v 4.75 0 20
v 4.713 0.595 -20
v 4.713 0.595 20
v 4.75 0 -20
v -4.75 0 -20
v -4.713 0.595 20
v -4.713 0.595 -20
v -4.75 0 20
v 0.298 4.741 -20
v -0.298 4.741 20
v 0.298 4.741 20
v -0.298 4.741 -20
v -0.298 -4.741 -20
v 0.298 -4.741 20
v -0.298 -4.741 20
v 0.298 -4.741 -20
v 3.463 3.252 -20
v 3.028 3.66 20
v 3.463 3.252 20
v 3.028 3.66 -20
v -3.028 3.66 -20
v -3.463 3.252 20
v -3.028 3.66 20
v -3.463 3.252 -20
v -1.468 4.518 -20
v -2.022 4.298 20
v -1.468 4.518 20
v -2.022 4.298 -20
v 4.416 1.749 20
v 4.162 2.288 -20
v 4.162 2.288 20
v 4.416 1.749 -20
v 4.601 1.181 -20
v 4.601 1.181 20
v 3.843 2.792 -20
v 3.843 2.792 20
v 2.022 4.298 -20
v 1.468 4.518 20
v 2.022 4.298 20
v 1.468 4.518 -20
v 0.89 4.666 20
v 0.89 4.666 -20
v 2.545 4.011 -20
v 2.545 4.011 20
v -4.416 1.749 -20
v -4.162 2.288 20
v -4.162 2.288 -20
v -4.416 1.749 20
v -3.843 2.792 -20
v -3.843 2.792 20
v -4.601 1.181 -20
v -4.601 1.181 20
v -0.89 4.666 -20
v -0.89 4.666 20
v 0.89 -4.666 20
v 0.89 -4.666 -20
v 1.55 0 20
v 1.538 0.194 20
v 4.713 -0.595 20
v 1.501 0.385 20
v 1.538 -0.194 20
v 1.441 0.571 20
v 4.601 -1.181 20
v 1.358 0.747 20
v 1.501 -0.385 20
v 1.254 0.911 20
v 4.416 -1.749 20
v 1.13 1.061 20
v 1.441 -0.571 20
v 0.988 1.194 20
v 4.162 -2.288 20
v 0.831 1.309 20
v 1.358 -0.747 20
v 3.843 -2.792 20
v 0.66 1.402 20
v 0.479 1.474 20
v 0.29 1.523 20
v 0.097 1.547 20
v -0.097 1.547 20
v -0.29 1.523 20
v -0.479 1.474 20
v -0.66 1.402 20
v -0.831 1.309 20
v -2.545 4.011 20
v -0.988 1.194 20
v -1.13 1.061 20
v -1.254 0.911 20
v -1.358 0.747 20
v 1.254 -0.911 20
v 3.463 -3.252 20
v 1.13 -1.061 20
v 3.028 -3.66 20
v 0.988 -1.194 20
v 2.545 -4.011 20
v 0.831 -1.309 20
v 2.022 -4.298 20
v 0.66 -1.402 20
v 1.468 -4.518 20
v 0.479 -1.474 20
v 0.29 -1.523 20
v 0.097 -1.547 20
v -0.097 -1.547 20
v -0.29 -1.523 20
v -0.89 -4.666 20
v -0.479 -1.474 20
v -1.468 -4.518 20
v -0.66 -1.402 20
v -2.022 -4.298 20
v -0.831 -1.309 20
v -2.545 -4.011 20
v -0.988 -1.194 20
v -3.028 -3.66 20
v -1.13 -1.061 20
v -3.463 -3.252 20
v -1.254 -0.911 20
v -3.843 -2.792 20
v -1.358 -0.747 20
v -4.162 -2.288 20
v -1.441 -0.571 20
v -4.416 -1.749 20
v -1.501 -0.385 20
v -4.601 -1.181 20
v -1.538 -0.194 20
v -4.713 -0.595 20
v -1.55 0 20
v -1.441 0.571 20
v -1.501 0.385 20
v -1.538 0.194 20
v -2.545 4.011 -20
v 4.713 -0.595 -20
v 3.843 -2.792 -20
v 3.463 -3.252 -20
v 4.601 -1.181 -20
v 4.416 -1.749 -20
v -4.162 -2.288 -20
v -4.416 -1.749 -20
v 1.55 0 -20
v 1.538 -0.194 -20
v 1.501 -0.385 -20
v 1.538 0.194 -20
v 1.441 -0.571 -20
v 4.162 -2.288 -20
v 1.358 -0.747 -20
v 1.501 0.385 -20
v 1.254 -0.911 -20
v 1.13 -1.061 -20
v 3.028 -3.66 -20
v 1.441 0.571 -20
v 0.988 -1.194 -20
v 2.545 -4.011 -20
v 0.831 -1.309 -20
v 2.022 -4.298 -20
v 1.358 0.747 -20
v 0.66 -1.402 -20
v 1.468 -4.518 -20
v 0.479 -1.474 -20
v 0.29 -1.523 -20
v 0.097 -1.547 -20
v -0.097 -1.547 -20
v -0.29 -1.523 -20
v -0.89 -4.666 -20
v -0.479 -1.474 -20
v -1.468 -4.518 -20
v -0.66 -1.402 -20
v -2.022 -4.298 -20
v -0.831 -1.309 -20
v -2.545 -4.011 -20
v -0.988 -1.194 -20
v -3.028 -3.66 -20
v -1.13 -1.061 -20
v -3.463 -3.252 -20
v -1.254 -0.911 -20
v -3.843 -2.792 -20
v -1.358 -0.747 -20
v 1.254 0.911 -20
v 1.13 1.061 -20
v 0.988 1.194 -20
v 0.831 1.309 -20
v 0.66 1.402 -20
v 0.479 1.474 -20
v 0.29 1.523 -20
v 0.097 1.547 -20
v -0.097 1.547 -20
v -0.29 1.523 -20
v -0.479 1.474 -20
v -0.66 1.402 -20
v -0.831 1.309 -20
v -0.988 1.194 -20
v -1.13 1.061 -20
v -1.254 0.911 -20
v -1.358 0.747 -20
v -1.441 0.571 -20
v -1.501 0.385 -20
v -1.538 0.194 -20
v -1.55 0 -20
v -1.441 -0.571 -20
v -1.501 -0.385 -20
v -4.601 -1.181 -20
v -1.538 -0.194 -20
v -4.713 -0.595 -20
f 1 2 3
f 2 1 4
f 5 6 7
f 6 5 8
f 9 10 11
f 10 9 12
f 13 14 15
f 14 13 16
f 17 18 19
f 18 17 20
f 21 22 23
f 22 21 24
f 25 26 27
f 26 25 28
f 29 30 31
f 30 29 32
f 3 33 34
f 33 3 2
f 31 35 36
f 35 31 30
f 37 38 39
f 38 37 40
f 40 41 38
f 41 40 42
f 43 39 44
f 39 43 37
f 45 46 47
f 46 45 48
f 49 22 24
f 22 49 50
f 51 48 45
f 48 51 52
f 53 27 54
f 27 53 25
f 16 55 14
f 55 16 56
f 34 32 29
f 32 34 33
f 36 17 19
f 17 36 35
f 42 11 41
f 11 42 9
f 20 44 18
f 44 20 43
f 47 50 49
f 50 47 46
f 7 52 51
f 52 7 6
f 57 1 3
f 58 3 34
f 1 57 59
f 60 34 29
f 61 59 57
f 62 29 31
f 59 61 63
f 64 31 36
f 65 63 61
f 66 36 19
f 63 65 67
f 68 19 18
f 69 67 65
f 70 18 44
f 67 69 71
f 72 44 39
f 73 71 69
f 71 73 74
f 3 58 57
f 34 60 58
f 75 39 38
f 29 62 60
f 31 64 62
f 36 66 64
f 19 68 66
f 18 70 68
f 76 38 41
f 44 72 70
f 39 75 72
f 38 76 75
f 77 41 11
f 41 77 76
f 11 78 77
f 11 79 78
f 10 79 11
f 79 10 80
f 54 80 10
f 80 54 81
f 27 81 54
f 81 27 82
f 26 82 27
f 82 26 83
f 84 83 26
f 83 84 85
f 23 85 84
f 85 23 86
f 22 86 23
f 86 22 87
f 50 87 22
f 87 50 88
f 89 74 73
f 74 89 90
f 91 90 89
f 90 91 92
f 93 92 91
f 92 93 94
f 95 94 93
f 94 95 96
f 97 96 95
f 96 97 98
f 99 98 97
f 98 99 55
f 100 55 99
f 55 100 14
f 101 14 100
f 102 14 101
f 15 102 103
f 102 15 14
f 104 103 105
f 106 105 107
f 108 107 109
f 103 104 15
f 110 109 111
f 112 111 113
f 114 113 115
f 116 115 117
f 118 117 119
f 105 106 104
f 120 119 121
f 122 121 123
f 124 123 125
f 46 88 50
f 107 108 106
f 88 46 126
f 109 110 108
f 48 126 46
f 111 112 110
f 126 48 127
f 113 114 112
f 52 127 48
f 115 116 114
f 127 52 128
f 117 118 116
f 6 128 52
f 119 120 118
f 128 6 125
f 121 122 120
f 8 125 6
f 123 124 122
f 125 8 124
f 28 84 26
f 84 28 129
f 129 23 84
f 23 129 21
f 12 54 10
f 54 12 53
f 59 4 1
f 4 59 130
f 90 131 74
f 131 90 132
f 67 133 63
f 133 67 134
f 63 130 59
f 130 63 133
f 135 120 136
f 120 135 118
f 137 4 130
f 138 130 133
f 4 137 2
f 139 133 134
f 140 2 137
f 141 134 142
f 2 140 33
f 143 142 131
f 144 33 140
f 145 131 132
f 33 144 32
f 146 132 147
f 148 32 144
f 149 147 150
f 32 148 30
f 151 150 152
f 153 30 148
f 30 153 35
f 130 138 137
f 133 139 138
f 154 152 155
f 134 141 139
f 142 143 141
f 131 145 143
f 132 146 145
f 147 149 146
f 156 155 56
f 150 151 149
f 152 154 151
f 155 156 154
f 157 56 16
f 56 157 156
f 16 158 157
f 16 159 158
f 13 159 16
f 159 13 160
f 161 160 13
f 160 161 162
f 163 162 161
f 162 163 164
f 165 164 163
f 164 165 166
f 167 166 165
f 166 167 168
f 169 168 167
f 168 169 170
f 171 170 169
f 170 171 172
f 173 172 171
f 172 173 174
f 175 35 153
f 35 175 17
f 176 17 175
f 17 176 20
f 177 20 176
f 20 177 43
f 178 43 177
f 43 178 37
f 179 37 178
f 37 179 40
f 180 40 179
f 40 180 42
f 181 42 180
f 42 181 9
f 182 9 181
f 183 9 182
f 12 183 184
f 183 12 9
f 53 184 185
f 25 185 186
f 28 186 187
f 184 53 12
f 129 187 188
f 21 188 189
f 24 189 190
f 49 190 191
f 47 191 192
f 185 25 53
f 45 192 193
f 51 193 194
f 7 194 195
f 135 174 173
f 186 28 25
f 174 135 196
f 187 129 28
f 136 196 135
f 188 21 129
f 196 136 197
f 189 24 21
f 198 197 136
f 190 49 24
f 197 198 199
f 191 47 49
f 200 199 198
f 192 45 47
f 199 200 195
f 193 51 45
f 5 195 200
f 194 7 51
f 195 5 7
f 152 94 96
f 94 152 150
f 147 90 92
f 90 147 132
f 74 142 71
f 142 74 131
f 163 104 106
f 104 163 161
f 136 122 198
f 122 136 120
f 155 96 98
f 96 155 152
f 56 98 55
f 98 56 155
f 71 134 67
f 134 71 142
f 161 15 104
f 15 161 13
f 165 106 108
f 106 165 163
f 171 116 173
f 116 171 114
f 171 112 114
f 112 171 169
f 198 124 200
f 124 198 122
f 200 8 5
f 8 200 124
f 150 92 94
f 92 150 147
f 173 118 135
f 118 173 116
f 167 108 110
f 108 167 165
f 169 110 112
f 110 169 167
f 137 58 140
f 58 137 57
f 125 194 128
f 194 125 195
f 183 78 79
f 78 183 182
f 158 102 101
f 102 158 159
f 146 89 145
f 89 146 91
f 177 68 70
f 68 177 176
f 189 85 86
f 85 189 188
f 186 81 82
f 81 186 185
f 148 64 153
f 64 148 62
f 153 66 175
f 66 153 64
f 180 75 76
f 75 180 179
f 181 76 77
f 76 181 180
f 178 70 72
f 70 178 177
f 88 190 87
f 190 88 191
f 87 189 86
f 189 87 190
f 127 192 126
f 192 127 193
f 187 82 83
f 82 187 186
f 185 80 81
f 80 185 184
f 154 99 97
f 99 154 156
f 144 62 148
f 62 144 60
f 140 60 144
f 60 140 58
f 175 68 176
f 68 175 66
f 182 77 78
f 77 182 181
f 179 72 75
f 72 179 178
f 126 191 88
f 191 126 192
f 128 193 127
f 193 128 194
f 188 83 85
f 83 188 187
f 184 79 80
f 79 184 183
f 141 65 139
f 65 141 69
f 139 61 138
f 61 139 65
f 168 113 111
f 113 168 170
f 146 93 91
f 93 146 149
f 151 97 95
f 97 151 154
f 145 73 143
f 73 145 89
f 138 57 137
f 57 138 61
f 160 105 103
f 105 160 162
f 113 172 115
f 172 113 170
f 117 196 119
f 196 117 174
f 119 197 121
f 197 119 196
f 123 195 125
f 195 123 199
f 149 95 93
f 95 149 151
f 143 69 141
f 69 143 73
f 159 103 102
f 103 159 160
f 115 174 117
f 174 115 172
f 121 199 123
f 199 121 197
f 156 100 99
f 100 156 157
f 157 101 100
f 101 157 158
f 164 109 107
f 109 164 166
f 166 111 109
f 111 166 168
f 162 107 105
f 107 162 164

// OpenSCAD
$fn = 50;


difference() {
	union() {
		translate(v = [0, 0, -20.0000000000]) {
			cylinder(h = 40, r = 4.7500000000);
		}
	}
	union() {
		translate(v = [0, 0, -100.0000000000]) {
			cylinder(h = 200, r = 1.5500000000);
		}
	}
}
